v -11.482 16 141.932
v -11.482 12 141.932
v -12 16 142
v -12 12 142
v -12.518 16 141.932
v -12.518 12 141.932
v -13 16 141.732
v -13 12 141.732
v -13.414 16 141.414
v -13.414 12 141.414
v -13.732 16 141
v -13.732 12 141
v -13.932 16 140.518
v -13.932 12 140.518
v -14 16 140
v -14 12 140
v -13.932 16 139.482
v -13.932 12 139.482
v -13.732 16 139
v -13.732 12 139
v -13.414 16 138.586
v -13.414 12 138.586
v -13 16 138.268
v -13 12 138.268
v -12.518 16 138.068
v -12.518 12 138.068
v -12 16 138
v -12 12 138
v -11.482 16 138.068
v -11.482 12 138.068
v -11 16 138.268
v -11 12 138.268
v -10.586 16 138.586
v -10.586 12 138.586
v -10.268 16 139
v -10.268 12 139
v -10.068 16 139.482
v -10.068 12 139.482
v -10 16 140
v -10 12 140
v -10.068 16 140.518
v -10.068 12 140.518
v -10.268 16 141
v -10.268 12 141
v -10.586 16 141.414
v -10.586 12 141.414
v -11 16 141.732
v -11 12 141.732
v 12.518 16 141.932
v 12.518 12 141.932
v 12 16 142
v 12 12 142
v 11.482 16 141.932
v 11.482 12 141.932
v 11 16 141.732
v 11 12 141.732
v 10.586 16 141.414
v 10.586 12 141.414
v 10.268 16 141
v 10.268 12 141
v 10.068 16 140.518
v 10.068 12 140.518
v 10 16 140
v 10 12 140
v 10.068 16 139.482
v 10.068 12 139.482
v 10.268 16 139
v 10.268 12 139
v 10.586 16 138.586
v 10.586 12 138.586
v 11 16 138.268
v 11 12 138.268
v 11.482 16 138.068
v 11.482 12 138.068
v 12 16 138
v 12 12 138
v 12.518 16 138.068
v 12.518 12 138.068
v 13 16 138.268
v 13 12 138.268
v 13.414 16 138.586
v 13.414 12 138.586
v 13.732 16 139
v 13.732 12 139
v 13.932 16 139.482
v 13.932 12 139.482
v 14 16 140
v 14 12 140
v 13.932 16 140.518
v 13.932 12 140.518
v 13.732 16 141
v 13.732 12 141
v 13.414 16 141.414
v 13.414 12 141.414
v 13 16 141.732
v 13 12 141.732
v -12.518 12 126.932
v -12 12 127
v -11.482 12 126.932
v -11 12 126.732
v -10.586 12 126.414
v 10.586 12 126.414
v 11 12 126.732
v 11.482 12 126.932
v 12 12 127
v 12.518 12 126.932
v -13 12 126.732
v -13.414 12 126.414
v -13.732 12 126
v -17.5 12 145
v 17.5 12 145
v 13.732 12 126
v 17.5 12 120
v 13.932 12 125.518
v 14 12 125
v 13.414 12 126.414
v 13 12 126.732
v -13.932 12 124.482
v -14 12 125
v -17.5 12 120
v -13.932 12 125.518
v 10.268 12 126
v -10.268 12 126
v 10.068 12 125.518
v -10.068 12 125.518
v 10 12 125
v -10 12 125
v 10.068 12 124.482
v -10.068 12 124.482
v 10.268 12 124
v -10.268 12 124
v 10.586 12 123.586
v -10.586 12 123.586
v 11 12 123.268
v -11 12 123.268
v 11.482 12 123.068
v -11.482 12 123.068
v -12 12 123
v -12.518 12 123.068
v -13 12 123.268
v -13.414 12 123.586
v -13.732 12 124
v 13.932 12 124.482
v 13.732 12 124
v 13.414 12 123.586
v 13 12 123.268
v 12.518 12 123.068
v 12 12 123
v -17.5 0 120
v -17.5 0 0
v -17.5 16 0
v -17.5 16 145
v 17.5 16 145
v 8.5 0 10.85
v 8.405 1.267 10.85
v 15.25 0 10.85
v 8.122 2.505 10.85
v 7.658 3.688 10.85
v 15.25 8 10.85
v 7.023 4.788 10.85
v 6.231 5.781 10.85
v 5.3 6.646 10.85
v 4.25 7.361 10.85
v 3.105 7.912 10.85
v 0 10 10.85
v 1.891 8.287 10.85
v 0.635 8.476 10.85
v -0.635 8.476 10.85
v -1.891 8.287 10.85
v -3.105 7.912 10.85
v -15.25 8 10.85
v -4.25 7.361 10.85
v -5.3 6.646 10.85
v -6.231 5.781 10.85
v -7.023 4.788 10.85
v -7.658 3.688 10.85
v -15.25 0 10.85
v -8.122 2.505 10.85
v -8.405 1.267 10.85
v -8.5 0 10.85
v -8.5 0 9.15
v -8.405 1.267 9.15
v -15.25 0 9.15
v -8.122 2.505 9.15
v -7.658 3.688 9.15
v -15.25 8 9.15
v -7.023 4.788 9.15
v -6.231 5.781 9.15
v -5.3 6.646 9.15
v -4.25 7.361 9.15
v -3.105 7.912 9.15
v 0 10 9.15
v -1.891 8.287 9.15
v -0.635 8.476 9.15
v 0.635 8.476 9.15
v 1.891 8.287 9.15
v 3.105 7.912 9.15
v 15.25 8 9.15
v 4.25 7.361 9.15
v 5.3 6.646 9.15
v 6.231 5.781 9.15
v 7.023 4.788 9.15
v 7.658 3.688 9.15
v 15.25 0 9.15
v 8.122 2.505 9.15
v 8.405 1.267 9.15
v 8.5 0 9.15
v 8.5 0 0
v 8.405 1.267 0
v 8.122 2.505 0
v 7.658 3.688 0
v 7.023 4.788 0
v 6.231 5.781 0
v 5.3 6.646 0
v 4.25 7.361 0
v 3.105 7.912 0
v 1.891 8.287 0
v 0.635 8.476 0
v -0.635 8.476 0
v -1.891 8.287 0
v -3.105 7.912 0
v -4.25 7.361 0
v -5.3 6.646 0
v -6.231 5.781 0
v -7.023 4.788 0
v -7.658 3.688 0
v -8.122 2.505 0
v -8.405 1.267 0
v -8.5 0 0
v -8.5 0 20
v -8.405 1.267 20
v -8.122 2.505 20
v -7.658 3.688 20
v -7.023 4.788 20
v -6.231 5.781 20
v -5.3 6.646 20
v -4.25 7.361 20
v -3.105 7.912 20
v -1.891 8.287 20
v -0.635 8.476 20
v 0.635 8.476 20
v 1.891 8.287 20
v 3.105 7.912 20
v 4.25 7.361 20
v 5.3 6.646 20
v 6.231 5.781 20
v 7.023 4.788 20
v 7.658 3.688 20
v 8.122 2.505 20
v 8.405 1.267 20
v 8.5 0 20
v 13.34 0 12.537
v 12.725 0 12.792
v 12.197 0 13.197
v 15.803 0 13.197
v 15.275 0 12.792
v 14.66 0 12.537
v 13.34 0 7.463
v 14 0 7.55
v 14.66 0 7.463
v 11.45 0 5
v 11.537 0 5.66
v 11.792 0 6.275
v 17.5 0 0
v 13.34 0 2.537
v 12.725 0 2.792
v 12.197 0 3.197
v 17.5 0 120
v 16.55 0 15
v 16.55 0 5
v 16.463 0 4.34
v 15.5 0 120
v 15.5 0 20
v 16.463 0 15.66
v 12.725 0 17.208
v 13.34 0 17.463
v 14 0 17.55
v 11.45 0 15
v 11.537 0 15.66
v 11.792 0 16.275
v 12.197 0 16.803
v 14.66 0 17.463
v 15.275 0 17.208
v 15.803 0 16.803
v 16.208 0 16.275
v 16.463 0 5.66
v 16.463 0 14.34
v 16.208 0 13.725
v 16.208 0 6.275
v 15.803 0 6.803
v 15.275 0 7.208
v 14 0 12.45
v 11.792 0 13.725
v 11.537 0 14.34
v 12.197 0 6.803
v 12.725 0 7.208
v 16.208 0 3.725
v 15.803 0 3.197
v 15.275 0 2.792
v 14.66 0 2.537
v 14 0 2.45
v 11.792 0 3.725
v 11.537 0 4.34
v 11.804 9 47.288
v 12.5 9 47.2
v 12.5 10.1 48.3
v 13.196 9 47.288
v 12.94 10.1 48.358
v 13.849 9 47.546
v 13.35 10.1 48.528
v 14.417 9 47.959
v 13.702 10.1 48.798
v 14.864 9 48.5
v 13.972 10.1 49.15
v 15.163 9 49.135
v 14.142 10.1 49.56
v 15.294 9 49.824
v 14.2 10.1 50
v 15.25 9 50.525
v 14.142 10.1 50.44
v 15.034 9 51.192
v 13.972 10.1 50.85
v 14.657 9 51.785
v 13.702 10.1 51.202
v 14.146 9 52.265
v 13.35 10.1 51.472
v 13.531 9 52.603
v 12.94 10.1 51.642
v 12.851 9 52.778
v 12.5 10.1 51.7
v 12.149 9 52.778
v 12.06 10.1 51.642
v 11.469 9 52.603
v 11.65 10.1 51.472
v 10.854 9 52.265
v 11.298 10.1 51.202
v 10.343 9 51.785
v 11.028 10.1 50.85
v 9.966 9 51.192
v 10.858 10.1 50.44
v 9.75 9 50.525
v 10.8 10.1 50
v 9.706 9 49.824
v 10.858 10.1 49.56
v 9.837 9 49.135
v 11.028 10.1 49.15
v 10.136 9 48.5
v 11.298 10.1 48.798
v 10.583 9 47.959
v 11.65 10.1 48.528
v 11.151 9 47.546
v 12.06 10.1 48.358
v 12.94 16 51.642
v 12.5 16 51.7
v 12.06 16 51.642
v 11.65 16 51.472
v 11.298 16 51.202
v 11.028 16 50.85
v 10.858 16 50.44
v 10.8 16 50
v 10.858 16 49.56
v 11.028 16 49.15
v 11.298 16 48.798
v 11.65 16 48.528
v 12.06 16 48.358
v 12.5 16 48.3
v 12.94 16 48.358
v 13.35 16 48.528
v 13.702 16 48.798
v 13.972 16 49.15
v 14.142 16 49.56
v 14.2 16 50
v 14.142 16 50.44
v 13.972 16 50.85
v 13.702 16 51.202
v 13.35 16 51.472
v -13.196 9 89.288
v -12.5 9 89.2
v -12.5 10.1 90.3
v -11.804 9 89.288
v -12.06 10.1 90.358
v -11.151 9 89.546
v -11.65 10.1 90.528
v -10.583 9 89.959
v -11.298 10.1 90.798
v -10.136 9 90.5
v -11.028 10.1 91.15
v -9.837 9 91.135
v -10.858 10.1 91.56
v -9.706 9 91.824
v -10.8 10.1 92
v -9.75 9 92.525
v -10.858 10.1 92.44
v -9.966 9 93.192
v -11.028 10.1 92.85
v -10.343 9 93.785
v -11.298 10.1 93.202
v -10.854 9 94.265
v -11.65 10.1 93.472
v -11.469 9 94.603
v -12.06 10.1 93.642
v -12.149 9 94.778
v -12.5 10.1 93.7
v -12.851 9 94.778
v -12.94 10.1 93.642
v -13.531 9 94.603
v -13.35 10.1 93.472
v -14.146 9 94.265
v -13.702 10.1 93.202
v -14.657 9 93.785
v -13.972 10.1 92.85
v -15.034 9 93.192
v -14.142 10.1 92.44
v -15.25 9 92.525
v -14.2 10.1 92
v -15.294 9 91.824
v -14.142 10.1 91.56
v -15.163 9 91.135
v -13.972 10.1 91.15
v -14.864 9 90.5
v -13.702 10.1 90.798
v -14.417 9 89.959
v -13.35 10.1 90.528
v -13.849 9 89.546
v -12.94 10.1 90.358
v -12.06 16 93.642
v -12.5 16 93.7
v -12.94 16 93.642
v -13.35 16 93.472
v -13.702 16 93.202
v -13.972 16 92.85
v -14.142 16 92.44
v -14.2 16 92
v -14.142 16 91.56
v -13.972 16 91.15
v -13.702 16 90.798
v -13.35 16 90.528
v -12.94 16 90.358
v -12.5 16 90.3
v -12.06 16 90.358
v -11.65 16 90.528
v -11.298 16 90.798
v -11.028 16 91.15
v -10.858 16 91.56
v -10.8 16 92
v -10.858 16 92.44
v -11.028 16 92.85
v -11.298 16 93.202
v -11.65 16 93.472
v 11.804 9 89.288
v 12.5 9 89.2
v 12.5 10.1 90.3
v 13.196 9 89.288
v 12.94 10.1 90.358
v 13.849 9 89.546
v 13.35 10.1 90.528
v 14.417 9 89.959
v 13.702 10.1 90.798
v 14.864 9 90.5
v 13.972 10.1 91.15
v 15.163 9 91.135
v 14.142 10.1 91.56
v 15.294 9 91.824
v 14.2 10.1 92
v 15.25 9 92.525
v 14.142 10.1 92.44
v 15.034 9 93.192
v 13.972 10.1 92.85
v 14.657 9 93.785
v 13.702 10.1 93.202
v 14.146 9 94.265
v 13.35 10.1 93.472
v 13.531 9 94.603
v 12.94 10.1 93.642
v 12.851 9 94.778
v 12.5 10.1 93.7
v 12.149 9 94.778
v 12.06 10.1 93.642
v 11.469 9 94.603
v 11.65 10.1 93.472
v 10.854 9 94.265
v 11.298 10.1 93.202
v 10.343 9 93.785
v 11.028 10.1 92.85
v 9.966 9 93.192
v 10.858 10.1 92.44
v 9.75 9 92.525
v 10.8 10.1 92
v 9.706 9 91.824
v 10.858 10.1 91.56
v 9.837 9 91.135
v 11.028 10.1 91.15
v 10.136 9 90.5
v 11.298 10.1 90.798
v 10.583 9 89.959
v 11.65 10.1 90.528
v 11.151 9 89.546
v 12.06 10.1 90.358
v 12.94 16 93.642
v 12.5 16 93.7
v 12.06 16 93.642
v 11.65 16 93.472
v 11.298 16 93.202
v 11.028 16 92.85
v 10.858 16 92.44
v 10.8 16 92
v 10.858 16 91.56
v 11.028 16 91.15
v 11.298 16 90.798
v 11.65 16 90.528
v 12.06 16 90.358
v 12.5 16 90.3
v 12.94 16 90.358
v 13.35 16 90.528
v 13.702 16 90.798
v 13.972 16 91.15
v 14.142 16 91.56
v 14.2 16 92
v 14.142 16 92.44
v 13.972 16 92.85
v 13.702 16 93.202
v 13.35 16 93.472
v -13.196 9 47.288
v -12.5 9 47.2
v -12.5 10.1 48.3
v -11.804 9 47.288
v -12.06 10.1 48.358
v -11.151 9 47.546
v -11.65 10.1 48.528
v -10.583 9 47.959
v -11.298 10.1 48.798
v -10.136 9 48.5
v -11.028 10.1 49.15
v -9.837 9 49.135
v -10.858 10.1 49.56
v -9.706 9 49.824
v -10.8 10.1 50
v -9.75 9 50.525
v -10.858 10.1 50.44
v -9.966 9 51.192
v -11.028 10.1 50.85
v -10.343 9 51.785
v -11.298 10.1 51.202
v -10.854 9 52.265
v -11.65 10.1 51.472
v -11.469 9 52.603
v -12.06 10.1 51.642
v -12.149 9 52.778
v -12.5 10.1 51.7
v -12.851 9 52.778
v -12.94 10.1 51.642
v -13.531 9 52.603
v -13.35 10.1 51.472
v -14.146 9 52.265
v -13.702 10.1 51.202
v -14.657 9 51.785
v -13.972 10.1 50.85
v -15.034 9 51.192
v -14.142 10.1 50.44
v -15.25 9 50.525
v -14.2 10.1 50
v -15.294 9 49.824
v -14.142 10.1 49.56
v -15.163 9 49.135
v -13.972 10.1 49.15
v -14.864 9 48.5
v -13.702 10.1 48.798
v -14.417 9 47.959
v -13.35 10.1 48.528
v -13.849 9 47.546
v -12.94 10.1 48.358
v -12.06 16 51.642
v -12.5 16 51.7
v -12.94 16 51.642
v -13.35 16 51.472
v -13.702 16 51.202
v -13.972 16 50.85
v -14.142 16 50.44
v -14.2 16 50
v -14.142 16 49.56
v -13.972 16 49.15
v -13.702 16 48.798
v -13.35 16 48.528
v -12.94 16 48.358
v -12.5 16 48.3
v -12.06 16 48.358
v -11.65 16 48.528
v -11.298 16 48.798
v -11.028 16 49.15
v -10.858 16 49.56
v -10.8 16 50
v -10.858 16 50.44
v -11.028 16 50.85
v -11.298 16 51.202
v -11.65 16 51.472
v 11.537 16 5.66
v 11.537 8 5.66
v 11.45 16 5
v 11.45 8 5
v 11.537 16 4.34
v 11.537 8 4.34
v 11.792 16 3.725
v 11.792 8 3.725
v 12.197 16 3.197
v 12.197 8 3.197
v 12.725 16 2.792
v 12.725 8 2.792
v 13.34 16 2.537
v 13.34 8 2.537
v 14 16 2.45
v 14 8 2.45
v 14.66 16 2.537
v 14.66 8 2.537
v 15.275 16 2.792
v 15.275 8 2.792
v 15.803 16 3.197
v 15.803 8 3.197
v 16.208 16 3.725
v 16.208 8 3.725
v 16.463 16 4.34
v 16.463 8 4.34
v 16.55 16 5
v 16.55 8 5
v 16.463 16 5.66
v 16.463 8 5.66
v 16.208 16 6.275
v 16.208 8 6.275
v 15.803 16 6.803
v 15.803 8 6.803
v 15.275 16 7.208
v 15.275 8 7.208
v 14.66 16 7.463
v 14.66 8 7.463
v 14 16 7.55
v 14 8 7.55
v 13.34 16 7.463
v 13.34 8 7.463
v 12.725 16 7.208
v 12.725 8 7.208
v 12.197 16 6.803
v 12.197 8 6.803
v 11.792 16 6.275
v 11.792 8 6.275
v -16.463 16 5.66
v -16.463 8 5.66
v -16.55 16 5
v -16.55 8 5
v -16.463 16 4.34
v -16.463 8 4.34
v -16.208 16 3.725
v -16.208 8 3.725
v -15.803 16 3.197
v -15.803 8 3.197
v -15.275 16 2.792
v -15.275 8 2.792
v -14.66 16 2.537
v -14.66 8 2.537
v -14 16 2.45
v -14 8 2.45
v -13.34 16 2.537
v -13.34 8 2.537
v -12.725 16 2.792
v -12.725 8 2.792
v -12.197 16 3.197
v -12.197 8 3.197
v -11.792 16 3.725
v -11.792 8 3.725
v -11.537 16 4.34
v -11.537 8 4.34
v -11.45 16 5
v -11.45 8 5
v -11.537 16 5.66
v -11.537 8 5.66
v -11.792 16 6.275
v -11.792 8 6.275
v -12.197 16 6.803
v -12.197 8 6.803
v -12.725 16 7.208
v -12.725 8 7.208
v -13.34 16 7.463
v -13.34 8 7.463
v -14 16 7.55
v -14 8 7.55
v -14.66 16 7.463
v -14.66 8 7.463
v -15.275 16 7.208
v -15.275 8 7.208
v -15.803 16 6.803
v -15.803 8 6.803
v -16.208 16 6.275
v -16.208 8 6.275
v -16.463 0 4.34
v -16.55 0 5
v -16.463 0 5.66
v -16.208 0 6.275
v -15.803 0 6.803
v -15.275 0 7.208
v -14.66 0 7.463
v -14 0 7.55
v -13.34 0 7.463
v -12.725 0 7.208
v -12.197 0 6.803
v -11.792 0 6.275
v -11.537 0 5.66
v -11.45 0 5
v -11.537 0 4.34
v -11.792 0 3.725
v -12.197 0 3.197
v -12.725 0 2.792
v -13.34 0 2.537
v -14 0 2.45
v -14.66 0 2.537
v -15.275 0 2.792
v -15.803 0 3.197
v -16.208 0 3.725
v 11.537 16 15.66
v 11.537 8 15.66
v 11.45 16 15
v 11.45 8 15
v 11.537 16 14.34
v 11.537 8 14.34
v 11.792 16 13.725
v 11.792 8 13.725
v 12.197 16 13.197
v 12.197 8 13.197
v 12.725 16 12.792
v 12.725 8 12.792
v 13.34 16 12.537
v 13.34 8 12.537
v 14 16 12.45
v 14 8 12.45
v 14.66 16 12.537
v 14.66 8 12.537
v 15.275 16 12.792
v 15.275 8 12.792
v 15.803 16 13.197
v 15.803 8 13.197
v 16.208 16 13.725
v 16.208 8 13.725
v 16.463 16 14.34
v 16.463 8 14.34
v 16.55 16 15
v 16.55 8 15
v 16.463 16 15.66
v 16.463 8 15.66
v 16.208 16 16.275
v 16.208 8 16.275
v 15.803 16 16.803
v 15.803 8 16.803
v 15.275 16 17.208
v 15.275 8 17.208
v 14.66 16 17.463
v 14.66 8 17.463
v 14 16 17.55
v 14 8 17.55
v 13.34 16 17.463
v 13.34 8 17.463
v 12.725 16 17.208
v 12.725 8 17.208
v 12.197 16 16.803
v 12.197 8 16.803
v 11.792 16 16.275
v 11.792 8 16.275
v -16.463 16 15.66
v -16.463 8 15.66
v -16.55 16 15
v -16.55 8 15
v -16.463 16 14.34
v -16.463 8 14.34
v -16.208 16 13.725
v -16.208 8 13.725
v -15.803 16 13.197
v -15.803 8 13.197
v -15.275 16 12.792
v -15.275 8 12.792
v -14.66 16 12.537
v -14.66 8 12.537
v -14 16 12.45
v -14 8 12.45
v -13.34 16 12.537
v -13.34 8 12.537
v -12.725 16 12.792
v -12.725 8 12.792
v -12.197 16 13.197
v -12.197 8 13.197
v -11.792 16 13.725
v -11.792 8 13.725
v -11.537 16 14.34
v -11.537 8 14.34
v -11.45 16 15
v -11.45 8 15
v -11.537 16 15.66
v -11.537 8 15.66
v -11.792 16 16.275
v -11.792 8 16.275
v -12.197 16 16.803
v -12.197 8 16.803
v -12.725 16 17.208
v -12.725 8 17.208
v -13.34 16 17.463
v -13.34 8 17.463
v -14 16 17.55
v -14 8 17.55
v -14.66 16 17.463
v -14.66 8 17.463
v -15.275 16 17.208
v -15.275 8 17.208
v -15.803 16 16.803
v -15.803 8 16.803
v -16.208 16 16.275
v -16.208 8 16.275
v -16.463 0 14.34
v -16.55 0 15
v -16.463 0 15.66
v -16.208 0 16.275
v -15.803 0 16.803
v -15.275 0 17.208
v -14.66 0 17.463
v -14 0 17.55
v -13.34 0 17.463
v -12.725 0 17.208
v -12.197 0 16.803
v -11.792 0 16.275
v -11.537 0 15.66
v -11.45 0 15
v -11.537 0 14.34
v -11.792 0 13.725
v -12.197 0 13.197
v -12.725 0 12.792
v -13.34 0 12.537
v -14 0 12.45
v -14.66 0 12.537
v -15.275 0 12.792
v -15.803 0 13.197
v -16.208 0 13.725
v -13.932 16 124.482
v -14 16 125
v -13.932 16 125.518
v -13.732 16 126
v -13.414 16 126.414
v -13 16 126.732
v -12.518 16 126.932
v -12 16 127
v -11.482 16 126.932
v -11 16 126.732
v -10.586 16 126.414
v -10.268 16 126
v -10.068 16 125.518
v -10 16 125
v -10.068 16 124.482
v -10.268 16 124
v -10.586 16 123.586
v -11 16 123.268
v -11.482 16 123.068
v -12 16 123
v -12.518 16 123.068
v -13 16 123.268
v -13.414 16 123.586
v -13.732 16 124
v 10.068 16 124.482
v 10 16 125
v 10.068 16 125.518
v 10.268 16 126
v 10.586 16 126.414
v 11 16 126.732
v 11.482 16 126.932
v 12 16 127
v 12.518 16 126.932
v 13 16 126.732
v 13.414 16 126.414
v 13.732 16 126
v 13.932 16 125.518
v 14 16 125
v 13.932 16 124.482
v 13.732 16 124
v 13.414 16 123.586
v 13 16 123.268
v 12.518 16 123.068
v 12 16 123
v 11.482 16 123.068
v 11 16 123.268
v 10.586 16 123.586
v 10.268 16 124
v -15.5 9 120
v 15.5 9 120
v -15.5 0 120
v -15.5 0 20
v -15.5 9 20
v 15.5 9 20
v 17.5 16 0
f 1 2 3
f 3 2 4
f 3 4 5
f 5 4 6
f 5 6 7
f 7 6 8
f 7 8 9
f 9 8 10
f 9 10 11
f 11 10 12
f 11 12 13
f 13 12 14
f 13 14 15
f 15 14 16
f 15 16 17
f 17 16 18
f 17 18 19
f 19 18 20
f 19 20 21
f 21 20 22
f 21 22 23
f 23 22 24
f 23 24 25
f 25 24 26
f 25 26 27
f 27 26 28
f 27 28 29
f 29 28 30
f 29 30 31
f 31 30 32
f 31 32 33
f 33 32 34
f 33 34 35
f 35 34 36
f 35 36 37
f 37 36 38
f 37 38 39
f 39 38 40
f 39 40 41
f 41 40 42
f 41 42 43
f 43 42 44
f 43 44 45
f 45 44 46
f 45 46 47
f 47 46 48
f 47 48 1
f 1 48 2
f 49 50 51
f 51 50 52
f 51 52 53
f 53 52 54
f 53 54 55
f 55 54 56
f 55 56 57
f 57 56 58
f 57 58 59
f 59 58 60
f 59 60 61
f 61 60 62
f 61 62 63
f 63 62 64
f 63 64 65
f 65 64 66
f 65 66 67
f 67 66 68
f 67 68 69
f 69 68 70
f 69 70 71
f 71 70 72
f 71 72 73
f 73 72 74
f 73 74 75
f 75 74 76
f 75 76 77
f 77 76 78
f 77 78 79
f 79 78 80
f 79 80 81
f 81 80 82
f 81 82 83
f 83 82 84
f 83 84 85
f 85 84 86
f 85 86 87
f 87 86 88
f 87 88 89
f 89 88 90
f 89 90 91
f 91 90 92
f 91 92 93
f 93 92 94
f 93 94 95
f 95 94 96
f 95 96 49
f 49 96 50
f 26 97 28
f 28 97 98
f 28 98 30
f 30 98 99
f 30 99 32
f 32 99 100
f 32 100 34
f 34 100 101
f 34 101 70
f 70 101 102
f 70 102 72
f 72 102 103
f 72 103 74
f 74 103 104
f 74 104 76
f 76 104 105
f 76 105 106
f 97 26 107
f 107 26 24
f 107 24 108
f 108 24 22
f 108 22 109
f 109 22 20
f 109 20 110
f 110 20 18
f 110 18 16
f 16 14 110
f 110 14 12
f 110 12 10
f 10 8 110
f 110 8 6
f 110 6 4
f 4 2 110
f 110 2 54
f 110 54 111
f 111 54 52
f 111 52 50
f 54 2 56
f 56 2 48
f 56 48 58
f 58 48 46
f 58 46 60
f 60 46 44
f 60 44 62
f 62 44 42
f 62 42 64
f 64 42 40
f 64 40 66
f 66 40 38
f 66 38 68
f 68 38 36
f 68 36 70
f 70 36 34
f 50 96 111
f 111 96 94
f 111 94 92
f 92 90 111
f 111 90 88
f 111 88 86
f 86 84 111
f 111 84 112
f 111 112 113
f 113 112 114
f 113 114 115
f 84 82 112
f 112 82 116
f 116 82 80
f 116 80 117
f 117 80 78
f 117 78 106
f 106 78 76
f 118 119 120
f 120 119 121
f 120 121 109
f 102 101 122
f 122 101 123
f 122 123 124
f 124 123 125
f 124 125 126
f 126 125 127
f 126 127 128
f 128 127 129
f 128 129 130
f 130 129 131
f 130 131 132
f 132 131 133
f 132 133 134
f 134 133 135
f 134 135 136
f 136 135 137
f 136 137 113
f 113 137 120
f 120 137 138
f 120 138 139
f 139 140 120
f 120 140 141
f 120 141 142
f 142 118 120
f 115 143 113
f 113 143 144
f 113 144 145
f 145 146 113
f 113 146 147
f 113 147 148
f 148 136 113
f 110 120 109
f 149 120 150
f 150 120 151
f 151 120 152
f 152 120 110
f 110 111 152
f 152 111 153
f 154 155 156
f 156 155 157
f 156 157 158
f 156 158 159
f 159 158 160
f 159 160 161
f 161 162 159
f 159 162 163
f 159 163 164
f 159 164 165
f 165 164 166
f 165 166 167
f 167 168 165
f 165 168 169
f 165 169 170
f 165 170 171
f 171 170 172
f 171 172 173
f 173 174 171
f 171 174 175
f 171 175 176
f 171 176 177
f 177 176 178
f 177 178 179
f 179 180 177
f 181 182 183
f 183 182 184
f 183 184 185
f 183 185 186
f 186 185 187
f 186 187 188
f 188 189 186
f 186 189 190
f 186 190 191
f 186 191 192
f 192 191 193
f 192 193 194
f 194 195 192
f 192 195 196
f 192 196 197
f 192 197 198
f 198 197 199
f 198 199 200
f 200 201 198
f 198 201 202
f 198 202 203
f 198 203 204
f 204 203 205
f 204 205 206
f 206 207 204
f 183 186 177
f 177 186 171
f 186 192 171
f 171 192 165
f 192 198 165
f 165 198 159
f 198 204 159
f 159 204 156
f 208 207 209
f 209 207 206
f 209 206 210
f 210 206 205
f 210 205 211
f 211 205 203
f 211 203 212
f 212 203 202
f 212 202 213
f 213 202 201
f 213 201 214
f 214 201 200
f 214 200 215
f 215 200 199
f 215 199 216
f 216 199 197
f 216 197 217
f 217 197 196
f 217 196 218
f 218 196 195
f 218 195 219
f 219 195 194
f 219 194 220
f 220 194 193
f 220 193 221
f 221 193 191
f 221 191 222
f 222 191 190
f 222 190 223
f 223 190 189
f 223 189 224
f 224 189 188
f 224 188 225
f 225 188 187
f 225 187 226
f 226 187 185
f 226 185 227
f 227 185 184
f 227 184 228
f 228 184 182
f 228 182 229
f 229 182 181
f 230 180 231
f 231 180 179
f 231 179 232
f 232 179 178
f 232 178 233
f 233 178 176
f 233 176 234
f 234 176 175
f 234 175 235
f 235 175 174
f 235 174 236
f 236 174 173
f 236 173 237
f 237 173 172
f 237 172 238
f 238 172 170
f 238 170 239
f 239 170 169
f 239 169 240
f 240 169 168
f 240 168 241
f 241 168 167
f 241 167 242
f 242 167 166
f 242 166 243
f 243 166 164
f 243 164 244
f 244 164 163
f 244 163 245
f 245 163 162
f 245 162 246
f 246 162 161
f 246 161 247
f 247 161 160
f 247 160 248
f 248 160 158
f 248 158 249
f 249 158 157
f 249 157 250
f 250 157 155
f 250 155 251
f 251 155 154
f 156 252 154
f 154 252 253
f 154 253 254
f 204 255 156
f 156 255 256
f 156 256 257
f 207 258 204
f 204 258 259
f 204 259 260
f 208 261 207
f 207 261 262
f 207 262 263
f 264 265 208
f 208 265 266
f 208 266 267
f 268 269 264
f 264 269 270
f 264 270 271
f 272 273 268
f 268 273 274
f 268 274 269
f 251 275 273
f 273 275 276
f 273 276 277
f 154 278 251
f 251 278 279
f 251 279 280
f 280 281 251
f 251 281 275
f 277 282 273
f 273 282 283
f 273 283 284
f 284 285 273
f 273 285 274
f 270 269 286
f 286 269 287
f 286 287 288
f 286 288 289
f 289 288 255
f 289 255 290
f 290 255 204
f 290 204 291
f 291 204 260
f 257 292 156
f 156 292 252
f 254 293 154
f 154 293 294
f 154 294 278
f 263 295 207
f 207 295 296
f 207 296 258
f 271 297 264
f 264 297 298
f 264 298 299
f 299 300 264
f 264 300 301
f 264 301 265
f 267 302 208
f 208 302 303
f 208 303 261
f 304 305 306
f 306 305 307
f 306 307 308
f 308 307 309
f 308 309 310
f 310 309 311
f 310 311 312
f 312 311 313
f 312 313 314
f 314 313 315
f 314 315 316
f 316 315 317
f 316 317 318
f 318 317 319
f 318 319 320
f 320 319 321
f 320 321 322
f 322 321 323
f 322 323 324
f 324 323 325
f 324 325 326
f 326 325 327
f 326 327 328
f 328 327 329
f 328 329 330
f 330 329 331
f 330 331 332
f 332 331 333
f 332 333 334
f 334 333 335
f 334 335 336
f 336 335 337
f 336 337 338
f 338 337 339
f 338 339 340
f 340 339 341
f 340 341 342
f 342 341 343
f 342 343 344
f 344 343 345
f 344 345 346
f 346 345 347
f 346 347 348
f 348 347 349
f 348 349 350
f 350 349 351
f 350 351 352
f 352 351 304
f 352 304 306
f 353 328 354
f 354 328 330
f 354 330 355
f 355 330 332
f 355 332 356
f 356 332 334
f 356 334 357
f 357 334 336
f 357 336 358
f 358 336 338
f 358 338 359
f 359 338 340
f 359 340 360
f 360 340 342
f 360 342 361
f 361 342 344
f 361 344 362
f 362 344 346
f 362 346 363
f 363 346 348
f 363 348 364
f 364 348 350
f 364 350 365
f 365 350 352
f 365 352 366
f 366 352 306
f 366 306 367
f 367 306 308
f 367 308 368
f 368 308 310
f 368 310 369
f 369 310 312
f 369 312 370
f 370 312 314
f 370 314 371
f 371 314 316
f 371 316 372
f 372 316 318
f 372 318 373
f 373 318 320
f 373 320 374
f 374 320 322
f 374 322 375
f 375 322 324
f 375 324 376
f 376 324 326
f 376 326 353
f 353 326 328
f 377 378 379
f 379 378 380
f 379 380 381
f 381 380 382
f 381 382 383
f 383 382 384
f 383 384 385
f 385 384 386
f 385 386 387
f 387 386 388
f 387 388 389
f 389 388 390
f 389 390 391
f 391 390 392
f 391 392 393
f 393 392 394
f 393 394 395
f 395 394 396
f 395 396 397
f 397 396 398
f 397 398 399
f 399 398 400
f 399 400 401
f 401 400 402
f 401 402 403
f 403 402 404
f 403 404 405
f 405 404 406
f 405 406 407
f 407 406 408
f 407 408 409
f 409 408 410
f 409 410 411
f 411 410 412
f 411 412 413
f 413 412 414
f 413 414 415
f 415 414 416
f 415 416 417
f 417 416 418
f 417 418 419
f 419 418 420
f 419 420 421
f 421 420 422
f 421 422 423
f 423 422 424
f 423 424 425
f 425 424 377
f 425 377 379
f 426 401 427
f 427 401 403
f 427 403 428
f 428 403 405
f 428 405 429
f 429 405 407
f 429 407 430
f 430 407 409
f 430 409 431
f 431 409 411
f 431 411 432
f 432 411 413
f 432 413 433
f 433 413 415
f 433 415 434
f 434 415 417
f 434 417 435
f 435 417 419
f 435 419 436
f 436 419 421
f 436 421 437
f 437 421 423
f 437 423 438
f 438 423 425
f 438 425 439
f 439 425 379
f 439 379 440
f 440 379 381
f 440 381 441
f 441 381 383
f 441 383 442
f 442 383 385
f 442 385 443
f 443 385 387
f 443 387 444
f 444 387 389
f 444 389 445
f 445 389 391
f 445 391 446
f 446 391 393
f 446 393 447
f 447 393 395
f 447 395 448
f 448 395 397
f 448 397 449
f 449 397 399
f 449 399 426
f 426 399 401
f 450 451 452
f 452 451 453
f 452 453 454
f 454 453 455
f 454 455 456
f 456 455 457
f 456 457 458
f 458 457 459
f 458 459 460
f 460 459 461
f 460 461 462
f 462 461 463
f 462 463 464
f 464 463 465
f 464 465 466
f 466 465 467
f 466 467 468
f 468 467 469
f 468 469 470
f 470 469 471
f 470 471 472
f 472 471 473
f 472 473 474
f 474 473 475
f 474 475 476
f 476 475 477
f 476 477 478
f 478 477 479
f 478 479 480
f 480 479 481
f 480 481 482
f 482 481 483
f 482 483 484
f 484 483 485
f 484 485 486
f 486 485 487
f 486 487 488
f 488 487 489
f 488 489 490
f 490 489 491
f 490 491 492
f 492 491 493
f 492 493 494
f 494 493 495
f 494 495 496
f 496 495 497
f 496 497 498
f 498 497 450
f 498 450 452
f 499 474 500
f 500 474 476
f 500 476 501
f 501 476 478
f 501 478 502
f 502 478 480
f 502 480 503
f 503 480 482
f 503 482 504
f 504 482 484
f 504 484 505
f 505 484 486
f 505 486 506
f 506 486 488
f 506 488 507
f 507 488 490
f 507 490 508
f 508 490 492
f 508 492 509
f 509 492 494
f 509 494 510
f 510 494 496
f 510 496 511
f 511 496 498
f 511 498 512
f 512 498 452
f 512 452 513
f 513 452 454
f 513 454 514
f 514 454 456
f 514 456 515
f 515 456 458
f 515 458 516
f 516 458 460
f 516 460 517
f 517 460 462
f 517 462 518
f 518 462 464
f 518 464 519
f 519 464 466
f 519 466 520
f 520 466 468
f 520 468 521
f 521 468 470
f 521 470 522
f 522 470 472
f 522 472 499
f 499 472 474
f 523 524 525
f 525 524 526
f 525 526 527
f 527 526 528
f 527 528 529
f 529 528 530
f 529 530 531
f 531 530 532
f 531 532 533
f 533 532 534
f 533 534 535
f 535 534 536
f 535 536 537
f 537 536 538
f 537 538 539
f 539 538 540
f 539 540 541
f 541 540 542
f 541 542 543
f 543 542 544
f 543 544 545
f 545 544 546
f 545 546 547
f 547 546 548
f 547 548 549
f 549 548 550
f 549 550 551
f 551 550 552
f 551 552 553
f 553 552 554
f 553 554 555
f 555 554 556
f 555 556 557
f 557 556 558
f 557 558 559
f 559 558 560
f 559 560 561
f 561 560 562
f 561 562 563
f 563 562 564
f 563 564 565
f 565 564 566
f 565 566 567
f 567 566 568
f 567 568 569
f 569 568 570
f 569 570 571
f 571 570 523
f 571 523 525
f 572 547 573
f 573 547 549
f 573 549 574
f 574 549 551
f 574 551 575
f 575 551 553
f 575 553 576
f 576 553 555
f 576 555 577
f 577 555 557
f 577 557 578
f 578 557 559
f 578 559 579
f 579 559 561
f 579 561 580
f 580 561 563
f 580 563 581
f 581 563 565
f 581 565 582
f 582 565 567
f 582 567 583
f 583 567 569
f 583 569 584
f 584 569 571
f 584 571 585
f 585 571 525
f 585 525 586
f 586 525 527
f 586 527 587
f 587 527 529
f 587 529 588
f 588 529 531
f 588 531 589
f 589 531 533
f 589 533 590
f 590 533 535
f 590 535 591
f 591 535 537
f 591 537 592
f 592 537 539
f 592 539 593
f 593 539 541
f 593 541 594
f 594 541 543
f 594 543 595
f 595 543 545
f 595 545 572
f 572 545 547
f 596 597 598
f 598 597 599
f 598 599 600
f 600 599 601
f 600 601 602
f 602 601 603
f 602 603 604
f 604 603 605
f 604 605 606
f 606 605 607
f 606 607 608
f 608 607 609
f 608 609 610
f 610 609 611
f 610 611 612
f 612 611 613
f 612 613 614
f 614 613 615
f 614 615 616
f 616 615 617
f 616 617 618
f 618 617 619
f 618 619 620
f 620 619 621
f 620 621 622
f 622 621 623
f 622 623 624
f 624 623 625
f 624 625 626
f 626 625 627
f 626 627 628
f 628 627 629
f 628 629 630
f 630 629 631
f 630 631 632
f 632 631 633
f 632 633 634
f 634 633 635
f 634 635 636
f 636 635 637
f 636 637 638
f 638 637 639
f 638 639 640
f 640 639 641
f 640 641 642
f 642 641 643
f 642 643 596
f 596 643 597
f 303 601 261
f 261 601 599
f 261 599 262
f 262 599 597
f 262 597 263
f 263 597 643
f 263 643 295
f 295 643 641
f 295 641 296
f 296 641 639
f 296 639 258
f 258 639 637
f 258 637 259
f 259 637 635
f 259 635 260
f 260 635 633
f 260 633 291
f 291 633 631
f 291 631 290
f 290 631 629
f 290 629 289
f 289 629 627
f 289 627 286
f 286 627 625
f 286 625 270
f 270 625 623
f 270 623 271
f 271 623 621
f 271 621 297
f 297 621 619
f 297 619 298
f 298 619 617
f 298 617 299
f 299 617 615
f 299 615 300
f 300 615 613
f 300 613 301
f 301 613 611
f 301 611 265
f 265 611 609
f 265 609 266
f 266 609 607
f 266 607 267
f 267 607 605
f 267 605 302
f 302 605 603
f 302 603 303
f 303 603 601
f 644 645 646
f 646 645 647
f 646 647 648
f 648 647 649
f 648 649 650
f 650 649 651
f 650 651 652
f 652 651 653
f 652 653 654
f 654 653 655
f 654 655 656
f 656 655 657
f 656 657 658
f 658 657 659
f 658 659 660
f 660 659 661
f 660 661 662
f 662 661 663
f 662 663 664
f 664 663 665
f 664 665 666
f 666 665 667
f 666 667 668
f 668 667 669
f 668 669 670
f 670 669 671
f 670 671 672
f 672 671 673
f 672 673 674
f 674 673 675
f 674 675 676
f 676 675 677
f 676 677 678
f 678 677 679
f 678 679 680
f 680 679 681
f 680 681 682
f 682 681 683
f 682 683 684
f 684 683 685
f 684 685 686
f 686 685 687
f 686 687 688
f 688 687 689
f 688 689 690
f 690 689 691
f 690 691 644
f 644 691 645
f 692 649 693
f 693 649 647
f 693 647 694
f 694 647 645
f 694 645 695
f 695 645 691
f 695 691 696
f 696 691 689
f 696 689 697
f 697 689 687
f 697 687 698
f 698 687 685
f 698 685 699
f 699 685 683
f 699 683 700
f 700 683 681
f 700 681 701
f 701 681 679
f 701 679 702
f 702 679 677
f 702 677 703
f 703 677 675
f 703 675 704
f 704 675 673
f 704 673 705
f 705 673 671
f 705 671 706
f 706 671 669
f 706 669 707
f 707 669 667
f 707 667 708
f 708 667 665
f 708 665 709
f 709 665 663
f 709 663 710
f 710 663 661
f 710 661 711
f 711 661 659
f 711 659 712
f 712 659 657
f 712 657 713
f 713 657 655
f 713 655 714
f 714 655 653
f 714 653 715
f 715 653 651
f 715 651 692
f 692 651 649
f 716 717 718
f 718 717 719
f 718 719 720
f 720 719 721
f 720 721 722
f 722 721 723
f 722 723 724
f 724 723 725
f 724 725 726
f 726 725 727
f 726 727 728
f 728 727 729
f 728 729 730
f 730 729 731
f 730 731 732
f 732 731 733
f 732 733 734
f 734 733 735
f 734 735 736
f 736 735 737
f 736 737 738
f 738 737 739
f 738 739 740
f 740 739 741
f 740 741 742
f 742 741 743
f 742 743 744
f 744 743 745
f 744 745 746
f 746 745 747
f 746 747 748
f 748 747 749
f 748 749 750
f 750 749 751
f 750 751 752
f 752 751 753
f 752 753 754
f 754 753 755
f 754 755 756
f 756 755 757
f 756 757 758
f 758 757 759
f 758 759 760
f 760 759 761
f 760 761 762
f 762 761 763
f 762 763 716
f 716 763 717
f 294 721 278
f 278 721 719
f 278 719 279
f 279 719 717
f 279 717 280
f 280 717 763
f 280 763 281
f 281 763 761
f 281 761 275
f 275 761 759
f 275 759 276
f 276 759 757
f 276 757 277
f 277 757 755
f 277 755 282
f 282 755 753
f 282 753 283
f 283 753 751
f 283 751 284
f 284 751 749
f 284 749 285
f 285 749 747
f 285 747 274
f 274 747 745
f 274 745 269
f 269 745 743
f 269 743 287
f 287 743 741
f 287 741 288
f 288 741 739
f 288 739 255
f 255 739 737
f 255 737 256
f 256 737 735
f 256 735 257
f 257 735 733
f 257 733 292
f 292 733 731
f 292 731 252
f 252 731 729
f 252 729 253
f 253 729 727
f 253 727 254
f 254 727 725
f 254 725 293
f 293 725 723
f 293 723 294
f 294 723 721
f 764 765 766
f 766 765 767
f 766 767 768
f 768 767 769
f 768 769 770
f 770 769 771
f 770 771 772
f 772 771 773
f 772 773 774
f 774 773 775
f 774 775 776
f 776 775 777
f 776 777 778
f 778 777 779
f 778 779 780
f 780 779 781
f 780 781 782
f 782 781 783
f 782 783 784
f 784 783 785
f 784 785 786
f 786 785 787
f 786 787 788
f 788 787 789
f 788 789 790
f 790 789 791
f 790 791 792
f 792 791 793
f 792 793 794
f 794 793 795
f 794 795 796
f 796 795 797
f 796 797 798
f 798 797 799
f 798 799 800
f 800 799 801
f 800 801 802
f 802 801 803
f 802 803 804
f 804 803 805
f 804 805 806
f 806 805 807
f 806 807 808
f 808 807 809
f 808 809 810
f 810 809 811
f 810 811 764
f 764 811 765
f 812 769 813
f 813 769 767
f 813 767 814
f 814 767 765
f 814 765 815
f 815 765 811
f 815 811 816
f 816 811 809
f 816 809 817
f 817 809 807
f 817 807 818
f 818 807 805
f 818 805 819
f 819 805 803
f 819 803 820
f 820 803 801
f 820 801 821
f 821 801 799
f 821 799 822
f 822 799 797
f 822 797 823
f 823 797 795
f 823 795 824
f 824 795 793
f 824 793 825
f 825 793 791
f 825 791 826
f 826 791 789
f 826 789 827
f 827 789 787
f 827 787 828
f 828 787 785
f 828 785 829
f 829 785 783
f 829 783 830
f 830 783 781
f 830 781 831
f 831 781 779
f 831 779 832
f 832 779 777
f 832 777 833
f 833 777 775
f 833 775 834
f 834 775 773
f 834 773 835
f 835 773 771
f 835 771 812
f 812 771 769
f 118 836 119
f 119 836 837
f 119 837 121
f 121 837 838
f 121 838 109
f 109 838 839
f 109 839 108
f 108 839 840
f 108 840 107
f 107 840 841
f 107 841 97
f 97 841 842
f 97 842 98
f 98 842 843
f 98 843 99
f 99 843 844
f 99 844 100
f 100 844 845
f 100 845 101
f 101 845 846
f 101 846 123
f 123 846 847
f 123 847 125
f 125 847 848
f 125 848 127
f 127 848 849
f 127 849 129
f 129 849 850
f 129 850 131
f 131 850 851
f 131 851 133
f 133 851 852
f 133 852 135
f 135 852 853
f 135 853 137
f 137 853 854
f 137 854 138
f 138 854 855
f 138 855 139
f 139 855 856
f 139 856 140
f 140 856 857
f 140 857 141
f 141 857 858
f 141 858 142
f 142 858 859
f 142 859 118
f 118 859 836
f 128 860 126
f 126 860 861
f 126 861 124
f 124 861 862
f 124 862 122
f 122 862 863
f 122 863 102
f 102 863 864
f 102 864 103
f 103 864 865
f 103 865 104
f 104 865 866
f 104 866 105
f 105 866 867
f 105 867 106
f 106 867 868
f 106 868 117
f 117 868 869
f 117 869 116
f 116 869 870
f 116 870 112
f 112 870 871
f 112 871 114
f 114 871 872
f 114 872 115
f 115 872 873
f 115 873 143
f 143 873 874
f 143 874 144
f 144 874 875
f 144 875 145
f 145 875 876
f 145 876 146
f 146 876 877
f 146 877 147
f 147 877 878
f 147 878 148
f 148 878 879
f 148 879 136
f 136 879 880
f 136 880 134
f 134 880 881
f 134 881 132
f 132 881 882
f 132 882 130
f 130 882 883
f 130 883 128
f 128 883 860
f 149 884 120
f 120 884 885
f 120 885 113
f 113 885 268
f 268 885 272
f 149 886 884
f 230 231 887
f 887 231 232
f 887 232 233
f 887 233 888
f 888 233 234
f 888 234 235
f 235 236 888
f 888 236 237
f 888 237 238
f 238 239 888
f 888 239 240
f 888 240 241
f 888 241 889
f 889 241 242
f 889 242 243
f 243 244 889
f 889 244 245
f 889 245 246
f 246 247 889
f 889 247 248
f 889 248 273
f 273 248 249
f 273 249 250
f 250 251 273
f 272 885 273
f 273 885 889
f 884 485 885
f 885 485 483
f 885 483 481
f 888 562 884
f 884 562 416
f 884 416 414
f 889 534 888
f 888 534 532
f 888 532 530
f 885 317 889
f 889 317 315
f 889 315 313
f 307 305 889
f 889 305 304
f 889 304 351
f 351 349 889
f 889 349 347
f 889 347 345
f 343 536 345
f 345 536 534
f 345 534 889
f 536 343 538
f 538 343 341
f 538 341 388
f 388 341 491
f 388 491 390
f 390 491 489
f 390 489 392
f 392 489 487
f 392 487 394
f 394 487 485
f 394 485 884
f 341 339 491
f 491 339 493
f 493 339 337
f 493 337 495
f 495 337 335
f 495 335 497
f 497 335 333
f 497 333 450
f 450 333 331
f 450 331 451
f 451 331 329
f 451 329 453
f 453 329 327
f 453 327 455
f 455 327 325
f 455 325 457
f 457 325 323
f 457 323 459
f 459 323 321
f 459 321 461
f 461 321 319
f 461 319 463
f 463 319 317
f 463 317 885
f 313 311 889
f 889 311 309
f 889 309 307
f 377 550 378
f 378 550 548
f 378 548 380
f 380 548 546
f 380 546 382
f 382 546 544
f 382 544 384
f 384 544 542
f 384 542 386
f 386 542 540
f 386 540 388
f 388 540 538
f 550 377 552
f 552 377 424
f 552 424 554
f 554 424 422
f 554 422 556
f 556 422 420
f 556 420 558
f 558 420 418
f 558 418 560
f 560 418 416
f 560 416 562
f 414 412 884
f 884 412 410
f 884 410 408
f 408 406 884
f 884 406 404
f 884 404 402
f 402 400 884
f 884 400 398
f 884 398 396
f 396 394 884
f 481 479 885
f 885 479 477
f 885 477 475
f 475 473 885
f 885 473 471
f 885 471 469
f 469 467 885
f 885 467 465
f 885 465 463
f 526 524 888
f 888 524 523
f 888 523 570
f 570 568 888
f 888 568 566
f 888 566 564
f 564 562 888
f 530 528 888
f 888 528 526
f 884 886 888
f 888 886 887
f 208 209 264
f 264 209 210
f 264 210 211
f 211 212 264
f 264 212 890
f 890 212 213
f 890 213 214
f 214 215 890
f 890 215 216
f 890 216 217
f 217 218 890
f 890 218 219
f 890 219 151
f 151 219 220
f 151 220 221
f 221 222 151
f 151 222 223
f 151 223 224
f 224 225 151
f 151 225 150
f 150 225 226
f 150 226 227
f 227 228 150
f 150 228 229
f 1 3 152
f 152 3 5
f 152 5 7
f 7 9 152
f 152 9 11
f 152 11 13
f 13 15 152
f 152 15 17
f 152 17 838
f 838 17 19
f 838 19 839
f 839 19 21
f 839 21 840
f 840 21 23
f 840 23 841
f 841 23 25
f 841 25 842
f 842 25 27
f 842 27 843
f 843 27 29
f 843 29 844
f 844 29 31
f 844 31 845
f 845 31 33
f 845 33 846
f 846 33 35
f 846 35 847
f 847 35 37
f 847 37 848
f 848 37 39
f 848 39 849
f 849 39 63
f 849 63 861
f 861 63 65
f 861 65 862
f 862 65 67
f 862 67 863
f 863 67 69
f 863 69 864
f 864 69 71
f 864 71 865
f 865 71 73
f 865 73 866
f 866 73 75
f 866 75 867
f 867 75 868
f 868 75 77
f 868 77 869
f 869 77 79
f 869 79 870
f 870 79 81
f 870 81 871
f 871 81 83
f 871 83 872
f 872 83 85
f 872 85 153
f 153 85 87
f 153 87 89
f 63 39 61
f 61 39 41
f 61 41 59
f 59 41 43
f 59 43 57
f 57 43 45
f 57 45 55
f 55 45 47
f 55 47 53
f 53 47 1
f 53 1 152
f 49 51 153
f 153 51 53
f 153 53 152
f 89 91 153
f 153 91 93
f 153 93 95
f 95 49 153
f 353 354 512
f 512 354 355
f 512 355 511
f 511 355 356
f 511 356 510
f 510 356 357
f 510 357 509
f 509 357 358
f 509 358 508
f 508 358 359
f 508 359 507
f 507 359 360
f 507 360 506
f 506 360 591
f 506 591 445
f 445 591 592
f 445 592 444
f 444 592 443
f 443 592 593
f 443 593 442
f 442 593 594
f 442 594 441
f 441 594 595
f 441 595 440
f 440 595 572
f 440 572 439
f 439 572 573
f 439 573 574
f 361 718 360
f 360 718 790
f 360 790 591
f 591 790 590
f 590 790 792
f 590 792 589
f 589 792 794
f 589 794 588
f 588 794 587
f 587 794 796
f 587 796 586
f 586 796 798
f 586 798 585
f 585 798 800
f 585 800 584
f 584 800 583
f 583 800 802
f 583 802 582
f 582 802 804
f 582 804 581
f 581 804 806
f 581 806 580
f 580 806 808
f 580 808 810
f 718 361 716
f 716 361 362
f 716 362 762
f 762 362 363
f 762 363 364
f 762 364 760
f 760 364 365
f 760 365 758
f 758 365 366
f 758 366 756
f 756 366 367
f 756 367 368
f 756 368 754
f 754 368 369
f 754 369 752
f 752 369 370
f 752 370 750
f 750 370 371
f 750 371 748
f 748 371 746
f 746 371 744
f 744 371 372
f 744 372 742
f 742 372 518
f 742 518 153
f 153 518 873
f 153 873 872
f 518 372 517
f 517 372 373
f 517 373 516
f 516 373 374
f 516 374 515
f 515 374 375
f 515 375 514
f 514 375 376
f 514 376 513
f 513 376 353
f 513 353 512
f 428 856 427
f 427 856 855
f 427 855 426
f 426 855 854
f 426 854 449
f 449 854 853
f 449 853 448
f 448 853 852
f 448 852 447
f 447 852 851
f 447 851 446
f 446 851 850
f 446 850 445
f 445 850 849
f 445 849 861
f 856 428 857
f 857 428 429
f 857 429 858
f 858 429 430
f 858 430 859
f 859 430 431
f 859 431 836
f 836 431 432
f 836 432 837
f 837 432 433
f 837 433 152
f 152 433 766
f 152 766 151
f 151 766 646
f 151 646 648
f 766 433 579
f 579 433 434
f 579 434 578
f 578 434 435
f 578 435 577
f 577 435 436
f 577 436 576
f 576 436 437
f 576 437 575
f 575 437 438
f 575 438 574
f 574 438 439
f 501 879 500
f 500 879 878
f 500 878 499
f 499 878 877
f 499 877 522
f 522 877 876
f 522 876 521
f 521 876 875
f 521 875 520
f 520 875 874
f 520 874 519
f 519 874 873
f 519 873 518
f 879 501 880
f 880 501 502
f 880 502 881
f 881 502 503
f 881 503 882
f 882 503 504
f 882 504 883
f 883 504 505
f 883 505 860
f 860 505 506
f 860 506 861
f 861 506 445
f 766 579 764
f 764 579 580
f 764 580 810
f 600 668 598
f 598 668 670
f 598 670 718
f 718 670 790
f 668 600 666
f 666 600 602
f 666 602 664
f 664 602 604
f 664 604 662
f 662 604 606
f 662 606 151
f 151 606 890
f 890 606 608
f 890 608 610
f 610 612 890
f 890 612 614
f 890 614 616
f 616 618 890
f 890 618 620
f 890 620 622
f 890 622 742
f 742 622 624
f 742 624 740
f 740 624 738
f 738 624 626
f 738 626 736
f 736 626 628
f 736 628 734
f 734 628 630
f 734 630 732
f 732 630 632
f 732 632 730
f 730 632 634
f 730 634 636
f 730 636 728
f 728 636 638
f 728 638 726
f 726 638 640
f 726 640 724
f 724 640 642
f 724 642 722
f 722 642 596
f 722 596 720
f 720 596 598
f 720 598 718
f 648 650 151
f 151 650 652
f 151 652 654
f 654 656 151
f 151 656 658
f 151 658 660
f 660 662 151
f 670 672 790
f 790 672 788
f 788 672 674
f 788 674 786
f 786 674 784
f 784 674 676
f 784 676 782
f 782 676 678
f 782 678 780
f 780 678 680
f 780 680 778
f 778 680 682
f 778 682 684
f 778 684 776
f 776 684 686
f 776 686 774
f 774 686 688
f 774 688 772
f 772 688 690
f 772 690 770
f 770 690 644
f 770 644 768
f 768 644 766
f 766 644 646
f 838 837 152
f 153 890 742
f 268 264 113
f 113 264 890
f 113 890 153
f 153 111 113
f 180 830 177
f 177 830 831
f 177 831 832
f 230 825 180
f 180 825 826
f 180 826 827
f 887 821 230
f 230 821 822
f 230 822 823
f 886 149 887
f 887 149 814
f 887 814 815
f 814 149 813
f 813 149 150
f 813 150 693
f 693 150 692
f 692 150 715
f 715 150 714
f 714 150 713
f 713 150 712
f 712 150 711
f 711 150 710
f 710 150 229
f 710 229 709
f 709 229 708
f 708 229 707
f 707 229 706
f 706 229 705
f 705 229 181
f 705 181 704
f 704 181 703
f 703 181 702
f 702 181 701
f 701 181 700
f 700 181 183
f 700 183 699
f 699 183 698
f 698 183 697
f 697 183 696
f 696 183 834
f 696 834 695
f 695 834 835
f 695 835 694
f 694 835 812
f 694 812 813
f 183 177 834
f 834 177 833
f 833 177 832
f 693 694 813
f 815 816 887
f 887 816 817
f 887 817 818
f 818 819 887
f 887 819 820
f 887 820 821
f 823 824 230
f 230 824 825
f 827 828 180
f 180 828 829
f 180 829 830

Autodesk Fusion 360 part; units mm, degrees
sketch "スケッチ1" plane through (0, 0, 0) normal (0, 0, 1) x (1, 0, 0)
  line L0 (-17.5, 11) -> (17.5, 11)
  line L1 (17.5, 11) -> (17.5, 0)
  line L2 (17.5, 0) -> (-17.5, 0)
  line L3 (-17.5, 0) -> (-17.5, 11)
  dimension "d1" = 35
  dimension "d2" = 11
extrude "押し出し1" add sketch "スケッチ1" along normal blind 120
sketch "スケッチ2" plane through (0, 0, 0) normal (0, 0, -1) x (1, 0, 0)
  line L0 (17.5, 0) -> (-17.5, 0)
  line L1 (-17.5, 0) -> (-17.5, -11)
  line L2 (-17.5, -11) -> (17.5, -11)
  line L3 (17.5, -11) -> (17.5, 0)
  circle A0 centre (0, 0) radius 8.5
  dimension "d5" = 17
extrude "押し出し2" cut sketch "スケッチ2" against normal blind 20 contours L0 A0 picked at (-2.4352, -2.8535)
sketch "スケッチ3" plane through (0, 0, 120) normal (0, 0, 1) x (-1, 0, 0)
  line L0 (17.5, 0) -> (-17.5, 0)
  line L1 (-17.5, 0) -> (-17.5, -11)
  line L2 (-17.5, -11) -> (17.5, -11)
  line L3 (17.5, -11) -> (17.5, 0)
  line L4 (15.5, -9) -> (-15.5, -9)
  line L5 (-15.5, -9) -> (-15.5, 0)
  line L6 (-15.5, 0) -> (15.5, 0)
  line L7 (15.5, 0) -> (15.5, -9)
  dimension "d8" = 2
  dimension "d9" = 31
extrude "押し出し3" cut sketch "スケッチ3" against normal blind 100 contours L0 L4 L5 L6 L7
ref_plane "作業平面1" through (0, 5.5, 9) normal (0, 0, -1) x (-1, 0, 0)
sketch "スケッチ5" plane through (0, 11, 0) normal (0, 1, 0) x (-1, 0, 0)
  line L0 (-17.5, 0) -> (17.5, 0)
  line L1 (17.5, 0) -> (17.5, 120)
  line L2 (17.5, 120) -> (-17.5, 120)
  line L3 (-17.5, 120) -> (-17.5, 0)
  line L4 (-17.5, 130) -> (17.5, 130)
  line L5 (17.5, 130) -> (17.5, 120)
  line L6 (17.5, 120) -> (-17.5, 120)
  line L7 (-17.5, 120) -> (-17.5, 130)
  line L8 (-17.5, 125) -> (17.5, 125) construction
  circle A0 centre (12, 125) radius 2
  circle A1 centre (-12, 125) radius 2
  dimension "d16" = 4
  dimension "d17" = 4
  dimension "d18" = 24
  dimension "d19" = 10
  dimension "d20" = 5.5
extrude "押し出し5" add sketch "スケッチ5" against normal blind 2 contours L2 L4 L5 L6 L7
sketch "スケッチ8" plane through (0, 0, 0) normal (0, -1, 0) x (1, 0, 0)
  line L0 (-8.5, 20) -> (-15.5, 20)
  line L1 (-15.5, 20) -> (-15.5, 120)
  line L2 (-15.5, 120) -> (-17.5, 120)
  line L3 (-17.5, 120) -> (-17.5, 0)
  line L4 (-17.5, 0) -> (-8.5, 0)
  line L5 (-8.5, 0) -> (-8.5, 20)
  circle A0 centre (-14, 15) radius 2.55
  line L6 (18.5, 15) -> (-17.5, 15) construction
  line L7 (17.541, 5) -> (-17.5, 5) construction
  line L8 (15.5, 20) -> (8.5, 20) construction
  circle A1 centre (14, 15) radius 2.55
  circle A2 centre (14, 5) radius 2.55
  circle A3 centre (-14, 5) radius 2.55
  line L9 (17.5, 0) -> (17.5, 120)
  dimension "d30" = 5
  dimension "d31" = 10
  dimension "d32" = 5.1
  dimension "d33" = 5.1
  dimension "d34" = 5.1
  dimension "d35" = 5.1
  dimension "d36" = 3.5
  dimension "d37" = 3.5
  dimension "d38" = 3.5
  dimension "d39" = 3.5
extrude "押し出し8" cut sketch "スケッチ8" against normal blind 15 contours A0 | A1 | A2 | A3
move_face "OffsetFaces1" offset 3 1 faces at (-3.8517, 11, 52.6741)
sketch "Sketch9" plane through (0, 9, 0) normal (0, -1, 0) x (1, 0, 0)
  circle A0 centre (12, 125) radius 2
  circle A1 centre (-12, 125) radius 2
  line L0 (-15.5, 120) -> (-15.5, 20)
  line L1 (-15.5, 20) -> (15.5, 20)
  line L2 (15.5, 20) -> (15.5, 120)
  line L3 (15.5, 120) -> (17.5, 120)
  line L4 (17.5, 120) -> (17.5, 130)
  line L5 (17.5, 130) -> (-17.5, 130)
  line L6 (-17.5, 130) -> (-17.5, 120)
  line L7 (-17.5, 120) -> (-15.5, 120)
  point P0 (12.5, 50)
  point P1 (-12.5, 50)
  point P2 (-12.5, 92)
  point P3 (12.5, 92)
hole "Hole1" at (-12.5, 9, 92) at (12.5, 9, 92) at (12.5, 9, 50) at (-12.5, 9, 50) direction (0, 1, 0) diameter 3.4 depth 9 tip angle 118 countersink diameter 5.6 countersink angle 90
ref_plane "WorkPlane2" through (0, 0, 10) normal (0, 0, 1) x (1, 0, 0)
sketch "Sketch10" plane through (0, 0, 10) normal (0, 0, 1) x (1, 0, 0)
  line L0 (0, 0) -> (15.25, 0)
  line L1 (15.25, 0) -> (15.25, 8)
  line L2 (15.25, 8) -> (0, 10)
  line L3 (0, 0) -> (-15.25, 0)
  line L4 (-15.25, 0) -> (-15.25, 8)
  line L5 (-15.25, 8) -> (0, 10)
  dimension "d60" = 15.25
  dimension "d61" = 8
extrude "Extrude9" cut sketch "Sketch10" along normal blind 0.85 and the other way blind 0.85
sketch "Sketch11" plane through (0, 9, 0) normal (0, -1, 0) x (1, 0, 0)
  circle A0 centre (12.5, 50) radius 2.8
  circle A1 centre (-12.5, 92) radius 2.8
  circle A2 centre (12.5, 92) radius 2.8
  circle A3 centre (-12.5, 50) radius 2.8
  circle A4 centre (-12, 125) radius 2
  circle A5 centre (12, 125) radius 2
  line L0 (-15.5, 120) -> (-15.5, 20)
  line L1 (-15.5, 20) -> (15.5, 20)
  line L2 (15.5, 20) -> (15.5, 120)
  line L3 (15.5, 120) -> (17.5, 120)
  line L4 (17.5, 120) -> (17.5, 130)
  line L5 (17.5, 130) -> (-17.5, 130)
  line L6 (-17.5, 130) -> (-17.5, 120)
  line L7 (-17.5, 120) -> (-15.5, 120)
  line L8 (-17.5, 130) -> (17.5, 130)
  line L9 (17.5, 130) -> (17.5, 120)
  line L10 (17.5, 120) -> (-17.5, 120)
  line L11 (-17.5, 120) -> (-17.5, 130)
extrude "Extrude10" cut sketch "Sketch11" against normal blind 3 contours L3 L4 L5 L6 L7 L8 L9 L10 L11
move_face "OffsetFaces2" offset 2 1 faces at (-3.9094, 14, 64.5049)
move_face "OffsetFaces3" offset 15 1 faces at (5.8333, 13.3333, 130)
sketch "Sketch12" plane through (0, 12, 0) normal (0, -1, 0) x (1, 0, 0)
  circle A0 centre (12, 125) radius 2
  circle A1 centre (-12, 125) radius 2
  line L0 (-17.5, 120) -> (17.5, 120)
  line L1 (17.5, 120) -> (17.5, 145)
  line L2 (17.5, 145) -> (-17.5, 145)
  line L3 (-17.5, 145) -> (-17.5, 120)
  point P0 (-12, 140)
  point P1 (12, 140)
hole "Hole2" at (-12, 12, 140) at (12, 12, 140) direction (0, 1, 0) diameter 4 depth 5 tip angle 118
